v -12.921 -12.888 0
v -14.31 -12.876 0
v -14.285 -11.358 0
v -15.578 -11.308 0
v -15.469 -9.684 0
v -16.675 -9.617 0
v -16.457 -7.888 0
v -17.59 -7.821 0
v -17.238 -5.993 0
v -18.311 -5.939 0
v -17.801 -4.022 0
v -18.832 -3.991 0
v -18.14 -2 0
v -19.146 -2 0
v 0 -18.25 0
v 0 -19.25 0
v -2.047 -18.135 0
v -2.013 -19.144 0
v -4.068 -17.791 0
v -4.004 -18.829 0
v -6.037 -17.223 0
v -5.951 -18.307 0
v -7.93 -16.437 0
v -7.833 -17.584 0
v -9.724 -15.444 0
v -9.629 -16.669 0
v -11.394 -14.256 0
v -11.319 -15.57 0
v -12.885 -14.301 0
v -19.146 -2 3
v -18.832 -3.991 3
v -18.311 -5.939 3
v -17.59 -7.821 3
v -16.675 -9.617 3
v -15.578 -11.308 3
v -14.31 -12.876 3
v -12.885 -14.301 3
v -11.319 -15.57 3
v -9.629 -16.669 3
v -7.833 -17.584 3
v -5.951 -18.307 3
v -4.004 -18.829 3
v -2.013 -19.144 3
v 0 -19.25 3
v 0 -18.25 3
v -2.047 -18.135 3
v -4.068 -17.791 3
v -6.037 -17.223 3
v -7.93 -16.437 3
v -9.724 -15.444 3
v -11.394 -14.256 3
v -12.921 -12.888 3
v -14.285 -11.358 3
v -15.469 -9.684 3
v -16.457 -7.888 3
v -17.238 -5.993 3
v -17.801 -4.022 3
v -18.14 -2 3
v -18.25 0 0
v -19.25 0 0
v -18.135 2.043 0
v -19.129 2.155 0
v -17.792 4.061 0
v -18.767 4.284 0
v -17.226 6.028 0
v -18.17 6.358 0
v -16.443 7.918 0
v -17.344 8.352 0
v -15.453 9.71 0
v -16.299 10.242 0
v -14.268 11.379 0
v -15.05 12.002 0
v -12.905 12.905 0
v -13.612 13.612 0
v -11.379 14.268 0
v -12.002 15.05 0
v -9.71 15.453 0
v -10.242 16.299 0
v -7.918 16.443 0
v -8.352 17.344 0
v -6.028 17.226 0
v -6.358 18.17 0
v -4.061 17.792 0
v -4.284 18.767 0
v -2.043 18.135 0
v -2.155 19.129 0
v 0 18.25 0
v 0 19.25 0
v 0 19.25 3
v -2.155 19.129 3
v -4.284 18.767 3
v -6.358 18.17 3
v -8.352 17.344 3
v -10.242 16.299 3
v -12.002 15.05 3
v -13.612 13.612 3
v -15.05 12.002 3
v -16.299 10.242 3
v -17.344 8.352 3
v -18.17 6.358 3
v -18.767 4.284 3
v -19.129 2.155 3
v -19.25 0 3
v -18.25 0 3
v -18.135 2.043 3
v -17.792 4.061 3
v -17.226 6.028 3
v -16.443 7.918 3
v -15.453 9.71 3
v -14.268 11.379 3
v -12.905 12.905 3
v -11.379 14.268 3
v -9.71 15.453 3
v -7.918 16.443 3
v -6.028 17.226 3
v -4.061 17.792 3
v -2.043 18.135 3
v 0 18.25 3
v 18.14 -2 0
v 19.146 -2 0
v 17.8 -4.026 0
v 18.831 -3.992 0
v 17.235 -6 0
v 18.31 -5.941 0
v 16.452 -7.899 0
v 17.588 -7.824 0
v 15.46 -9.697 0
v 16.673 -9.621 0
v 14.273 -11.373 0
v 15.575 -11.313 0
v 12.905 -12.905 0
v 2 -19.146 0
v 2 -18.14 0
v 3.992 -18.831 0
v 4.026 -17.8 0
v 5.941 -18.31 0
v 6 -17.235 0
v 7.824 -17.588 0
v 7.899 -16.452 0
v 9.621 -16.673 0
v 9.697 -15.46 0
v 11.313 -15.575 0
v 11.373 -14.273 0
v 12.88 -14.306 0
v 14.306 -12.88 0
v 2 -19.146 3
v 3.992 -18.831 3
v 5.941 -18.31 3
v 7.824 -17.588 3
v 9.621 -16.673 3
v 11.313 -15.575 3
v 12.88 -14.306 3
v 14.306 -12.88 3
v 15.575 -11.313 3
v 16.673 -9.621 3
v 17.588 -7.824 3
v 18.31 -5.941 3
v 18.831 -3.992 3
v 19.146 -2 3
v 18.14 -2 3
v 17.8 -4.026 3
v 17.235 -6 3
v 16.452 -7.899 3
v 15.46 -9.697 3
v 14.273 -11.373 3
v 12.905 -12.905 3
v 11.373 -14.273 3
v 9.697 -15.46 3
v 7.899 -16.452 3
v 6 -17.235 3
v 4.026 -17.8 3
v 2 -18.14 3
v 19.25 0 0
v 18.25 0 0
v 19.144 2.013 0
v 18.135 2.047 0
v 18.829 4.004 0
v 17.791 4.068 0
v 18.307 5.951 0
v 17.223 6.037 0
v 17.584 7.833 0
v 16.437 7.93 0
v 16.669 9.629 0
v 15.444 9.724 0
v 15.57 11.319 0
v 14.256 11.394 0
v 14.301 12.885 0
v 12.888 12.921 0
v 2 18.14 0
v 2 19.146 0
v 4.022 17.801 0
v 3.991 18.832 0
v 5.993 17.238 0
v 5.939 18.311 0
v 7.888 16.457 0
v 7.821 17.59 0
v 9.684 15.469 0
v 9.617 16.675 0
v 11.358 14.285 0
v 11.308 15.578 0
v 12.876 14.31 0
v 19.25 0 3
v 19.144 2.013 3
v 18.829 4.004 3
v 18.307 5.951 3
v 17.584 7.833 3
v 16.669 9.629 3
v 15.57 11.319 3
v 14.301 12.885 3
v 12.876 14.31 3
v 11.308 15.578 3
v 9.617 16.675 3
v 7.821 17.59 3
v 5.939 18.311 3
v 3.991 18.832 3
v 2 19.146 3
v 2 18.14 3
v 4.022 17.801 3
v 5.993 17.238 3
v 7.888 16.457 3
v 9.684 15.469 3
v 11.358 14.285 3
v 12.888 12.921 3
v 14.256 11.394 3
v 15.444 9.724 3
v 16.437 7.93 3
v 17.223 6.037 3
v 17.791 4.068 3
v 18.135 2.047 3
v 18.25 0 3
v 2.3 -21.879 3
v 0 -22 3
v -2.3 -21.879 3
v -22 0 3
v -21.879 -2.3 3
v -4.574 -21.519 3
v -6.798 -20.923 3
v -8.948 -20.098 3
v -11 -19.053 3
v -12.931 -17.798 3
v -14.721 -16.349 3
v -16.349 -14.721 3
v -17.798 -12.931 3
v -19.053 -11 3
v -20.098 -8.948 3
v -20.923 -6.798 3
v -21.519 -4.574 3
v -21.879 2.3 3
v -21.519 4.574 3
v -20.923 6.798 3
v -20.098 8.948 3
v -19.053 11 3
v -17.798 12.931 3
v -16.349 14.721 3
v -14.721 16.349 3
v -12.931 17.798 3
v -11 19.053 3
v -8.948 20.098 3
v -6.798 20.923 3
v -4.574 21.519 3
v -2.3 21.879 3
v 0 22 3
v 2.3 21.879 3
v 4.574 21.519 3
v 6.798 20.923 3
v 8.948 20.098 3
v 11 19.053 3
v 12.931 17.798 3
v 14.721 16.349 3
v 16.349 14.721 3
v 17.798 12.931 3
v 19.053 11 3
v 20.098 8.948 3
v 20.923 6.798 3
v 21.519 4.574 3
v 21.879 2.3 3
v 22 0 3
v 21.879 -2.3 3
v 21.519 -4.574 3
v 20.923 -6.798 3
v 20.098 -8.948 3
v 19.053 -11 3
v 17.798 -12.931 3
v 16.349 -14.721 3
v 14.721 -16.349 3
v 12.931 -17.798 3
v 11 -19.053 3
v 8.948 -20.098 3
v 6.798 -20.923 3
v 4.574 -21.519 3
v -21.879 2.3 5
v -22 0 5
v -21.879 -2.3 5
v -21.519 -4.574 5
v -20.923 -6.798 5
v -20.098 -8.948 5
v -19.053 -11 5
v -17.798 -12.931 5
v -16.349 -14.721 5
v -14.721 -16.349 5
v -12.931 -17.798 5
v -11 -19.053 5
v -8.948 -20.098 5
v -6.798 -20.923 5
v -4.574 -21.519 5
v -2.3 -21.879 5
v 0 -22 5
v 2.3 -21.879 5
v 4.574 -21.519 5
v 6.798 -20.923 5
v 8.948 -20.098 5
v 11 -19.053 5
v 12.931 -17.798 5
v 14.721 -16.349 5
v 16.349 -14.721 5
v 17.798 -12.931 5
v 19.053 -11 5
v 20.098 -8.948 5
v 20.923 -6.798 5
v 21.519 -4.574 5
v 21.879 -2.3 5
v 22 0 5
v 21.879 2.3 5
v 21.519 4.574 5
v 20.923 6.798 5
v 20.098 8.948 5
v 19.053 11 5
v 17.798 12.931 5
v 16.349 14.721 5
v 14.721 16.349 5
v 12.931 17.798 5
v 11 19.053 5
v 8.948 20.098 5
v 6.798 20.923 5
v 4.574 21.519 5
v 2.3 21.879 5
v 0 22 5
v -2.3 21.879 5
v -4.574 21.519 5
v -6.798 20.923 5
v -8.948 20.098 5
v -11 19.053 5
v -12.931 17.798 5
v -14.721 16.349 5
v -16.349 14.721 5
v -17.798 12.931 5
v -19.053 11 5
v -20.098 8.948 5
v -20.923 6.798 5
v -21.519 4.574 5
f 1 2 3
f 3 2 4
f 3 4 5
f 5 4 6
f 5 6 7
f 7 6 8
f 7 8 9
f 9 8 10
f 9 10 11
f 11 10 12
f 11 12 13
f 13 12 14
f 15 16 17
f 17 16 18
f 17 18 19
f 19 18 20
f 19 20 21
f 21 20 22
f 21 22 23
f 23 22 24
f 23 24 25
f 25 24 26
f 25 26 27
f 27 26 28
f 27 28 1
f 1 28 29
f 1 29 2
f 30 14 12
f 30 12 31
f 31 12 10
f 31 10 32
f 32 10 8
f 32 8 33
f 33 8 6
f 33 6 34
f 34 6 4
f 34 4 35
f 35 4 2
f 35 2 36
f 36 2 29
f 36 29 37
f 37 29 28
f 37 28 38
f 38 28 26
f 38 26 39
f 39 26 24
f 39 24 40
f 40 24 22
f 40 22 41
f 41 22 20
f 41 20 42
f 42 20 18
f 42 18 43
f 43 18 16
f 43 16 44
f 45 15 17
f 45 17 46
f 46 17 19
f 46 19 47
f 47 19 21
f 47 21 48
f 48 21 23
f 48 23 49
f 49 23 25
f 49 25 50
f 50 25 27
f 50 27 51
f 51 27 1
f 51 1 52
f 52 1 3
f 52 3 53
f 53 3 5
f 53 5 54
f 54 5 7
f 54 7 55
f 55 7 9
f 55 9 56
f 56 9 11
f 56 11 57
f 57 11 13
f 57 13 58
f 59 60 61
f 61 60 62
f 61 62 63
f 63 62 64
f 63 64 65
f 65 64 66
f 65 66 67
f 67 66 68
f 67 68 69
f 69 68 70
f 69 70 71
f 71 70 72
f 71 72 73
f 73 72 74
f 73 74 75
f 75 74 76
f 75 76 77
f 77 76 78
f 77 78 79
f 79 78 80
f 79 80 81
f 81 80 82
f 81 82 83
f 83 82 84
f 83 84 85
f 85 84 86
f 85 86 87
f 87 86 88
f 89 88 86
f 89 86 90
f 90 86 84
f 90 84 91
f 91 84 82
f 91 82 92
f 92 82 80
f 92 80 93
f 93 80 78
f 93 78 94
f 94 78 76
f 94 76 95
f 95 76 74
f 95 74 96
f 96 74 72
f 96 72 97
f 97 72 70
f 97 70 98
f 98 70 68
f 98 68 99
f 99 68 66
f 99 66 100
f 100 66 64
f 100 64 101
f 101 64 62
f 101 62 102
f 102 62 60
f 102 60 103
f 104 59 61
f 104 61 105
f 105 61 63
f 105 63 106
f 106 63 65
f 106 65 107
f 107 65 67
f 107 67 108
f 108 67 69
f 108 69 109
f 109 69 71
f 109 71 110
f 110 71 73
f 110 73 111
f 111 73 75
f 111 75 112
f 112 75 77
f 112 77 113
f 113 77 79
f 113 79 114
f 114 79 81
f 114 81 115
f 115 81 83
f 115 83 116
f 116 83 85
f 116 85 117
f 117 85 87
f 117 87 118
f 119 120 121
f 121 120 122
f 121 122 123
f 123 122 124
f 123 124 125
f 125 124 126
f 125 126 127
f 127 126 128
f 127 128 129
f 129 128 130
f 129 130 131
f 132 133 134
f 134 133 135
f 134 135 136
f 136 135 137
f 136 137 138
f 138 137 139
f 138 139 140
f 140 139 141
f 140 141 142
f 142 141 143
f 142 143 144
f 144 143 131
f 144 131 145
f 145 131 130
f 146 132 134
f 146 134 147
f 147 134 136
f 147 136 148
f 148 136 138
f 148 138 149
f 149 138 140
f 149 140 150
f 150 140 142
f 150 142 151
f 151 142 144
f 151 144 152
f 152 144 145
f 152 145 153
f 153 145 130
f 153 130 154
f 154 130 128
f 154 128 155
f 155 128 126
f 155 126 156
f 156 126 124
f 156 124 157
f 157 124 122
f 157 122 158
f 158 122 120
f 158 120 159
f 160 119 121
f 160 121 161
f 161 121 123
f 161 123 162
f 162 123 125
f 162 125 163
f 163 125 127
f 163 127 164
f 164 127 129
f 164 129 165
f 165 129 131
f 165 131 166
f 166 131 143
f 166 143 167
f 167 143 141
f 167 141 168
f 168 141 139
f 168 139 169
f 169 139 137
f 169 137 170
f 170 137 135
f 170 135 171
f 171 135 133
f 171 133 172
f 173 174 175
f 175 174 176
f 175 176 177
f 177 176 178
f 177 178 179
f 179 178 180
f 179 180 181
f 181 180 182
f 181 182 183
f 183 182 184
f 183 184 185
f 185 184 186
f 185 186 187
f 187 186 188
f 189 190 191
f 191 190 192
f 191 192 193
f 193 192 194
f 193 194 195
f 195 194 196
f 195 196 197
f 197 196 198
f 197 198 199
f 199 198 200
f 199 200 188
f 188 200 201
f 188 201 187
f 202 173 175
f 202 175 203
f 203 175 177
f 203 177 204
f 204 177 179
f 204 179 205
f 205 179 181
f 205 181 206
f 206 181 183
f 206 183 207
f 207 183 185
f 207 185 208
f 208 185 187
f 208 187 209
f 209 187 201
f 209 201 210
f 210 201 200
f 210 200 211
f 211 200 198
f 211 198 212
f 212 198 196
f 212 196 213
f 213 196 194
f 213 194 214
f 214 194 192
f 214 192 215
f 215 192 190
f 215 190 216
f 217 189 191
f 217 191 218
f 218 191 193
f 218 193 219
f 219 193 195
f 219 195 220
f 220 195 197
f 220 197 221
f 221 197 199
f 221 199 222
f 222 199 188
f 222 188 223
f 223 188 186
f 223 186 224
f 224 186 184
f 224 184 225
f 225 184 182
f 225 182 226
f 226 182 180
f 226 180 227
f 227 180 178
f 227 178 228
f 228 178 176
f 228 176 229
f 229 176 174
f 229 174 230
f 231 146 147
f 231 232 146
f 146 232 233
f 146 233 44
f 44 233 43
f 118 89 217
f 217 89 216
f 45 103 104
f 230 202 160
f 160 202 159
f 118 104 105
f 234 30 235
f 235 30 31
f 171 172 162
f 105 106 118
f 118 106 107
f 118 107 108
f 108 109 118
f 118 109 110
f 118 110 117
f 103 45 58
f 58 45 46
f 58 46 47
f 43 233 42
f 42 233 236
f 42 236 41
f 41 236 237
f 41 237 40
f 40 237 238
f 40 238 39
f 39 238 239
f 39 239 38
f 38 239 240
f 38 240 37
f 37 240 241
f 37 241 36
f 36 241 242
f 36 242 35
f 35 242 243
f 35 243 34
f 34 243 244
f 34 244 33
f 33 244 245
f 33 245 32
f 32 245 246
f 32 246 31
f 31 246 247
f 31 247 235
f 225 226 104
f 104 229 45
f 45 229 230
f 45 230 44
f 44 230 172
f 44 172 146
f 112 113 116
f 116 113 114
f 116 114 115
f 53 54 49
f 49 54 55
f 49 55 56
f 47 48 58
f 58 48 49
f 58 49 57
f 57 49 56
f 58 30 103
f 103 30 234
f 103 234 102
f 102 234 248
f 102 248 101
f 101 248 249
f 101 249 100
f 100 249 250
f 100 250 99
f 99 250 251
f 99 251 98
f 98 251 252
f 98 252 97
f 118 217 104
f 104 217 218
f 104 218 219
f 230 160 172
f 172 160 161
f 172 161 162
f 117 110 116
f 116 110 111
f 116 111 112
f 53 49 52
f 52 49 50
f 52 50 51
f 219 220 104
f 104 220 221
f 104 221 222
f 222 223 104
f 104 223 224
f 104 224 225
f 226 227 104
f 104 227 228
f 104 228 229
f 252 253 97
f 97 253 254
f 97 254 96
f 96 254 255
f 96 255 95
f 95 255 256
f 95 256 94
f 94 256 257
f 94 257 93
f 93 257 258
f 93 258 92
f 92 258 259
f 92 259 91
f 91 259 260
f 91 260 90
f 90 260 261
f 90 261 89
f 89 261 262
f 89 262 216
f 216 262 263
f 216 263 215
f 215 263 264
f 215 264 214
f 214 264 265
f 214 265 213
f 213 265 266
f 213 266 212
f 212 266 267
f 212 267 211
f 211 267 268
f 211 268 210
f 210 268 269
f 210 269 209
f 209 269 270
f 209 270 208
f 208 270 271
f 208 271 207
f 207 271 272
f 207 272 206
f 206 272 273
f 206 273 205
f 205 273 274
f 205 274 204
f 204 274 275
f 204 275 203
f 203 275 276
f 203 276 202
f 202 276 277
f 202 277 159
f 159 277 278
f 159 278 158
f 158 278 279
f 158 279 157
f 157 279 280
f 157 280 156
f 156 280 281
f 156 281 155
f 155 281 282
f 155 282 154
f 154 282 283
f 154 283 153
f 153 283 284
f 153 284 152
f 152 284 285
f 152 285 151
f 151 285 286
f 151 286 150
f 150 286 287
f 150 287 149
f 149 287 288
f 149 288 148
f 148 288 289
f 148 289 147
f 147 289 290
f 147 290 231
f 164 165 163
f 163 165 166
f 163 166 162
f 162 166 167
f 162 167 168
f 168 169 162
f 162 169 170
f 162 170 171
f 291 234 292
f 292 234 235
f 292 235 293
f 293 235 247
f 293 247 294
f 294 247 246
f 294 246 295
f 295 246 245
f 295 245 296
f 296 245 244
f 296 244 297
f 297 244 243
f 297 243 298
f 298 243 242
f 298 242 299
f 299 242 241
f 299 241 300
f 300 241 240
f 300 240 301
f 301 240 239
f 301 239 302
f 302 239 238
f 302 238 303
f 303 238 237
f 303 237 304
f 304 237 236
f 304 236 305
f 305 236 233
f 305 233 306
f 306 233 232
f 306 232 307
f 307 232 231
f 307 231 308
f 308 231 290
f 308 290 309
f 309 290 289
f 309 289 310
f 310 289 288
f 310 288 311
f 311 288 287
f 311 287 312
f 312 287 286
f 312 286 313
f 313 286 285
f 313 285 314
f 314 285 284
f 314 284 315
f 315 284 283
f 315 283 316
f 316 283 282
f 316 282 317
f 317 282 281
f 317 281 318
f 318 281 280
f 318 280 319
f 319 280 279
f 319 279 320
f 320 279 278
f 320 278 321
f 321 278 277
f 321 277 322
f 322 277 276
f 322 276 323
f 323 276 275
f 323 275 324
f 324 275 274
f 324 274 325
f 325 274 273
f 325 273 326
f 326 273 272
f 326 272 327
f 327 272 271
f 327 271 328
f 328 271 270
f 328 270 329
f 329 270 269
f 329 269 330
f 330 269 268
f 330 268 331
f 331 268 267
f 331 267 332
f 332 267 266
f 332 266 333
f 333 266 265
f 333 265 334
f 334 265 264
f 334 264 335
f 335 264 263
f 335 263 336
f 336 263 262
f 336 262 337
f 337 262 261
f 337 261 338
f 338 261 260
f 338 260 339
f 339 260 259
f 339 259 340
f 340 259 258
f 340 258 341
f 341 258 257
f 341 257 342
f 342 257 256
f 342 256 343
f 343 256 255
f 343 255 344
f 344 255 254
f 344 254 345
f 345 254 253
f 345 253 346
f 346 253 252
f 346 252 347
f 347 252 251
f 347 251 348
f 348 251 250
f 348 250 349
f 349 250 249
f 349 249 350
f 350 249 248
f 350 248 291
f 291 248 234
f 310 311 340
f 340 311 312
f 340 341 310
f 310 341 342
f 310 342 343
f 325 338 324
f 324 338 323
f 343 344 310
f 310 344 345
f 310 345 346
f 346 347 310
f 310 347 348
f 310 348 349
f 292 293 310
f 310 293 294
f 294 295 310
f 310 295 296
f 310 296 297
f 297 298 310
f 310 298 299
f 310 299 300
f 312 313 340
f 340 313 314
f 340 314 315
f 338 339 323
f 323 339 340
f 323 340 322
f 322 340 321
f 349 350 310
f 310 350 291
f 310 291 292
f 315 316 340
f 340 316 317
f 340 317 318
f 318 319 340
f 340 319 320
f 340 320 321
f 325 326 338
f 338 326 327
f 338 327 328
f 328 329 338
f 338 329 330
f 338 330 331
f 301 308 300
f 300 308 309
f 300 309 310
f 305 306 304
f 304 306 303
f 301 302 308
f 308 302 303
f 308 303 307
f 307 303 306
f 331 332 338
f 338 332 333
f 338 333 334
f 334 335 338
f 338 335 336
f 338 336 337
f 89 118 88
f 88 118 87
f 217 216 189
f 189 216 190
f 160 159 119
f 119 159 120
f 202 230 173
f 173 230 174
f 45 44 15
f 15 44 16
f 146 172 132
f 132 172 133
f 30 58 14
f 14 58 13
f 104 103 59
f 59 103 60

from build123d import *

# Parameters (mm, degrees)
SCHIZZO1_R                   = 19.25
SCHIZZO1_R_2                 = 18.25
ESTRUSIONE_ESTRUSIONE1_DEPTH = 3
SCHIZZO2_R                   = 22
ESTRUSIONE_ESTRUSIONE2_DEPTH = 2
TAGLIO_ESTRUSIONE1_DEPTH     = 3


with BuildPart() as part:
    # Schizzo1 → Estrusione-Estrusione1 (new body)
    with BuildSketch(Plane.XY):
        Circle(SCHIZZO1_R)
        Circle(SCHIZZO1_R_2, mode=Mode.SUBTRACT)
    extrude(amount=ESTRUSIONE_ESTRUSIONE1_DEPTH)

    # Schizzo2 → Estrusione-Estrusione2 (add)
    with BuildSketch(Plane.XY.offset(3)):
        Circle(SCHIZZO2_R)
    extrude(amount=ESTRUSIONE_ESTRUSIONE2_DEPTH)

    # Schizzo3 → Taglio-Estrusione1 (cut)
    with BuildSketch(Plane(origin=(0, 0, 0), x_dir=(-1, 0, 0), z_dir=(0, 0, -1))):
        with BuildLine():
            Line((0, 18.25), (0, 19.25))
            ThreePointArc((0, 19.25), (-1.001355713, 19.223937857), (-2, 19.145821999))
            Line((-2, 19.145821999), (-2, 18.140079934))
            ThreePointArc((-2, 18.140079934), (-1.001509164, 18.222499263), (0, 18.25))
        make_face()
        with BuildLine():
            Line((-18.25, 0), (-19.25, 0))
            ThreePointArc((-19.25, 0), (-19.223937857, -1.001355713), (-19.145821999, -2))
            Line((-19.145821999, -2), (-18.140079934, -2))
            ThreePointArc((-18.140079934, -2), (-18.222499263, -1.001509164), (-18.25, 0))
        make_face()
        with BuildLine():
            ThreePointArc((-2, -19.145821999), (-1.001355713, -19.223937857), (0, -19.25))
            Line((0, -19.25), (0, -18.25))
            ThreePointArc((0, -18.25), (-1.001509164, -18.222499263), (-2, -18.140079934))
            Line((-2, -18.140079934), (-2, -19.145821999))
        make_face()
        with BuildLine():
            ThreePointArc((19.145821999, -2), (19.223937857, -1.001355713), (19.25, 0))
            Line((19.25, 0), (18.25, 0))
            ThreePointArc((18.25, 0), (18.222499263, -1.001509164), (18.140079934, -2))
            Line((18.140079934, -2), (19.145821999, -2))
        make_face()
    extrude(amount=-TAGLIO_ESTRUSIONE1_DEPTH, mode=Mode.SUBTRACT)


solid = part.part
